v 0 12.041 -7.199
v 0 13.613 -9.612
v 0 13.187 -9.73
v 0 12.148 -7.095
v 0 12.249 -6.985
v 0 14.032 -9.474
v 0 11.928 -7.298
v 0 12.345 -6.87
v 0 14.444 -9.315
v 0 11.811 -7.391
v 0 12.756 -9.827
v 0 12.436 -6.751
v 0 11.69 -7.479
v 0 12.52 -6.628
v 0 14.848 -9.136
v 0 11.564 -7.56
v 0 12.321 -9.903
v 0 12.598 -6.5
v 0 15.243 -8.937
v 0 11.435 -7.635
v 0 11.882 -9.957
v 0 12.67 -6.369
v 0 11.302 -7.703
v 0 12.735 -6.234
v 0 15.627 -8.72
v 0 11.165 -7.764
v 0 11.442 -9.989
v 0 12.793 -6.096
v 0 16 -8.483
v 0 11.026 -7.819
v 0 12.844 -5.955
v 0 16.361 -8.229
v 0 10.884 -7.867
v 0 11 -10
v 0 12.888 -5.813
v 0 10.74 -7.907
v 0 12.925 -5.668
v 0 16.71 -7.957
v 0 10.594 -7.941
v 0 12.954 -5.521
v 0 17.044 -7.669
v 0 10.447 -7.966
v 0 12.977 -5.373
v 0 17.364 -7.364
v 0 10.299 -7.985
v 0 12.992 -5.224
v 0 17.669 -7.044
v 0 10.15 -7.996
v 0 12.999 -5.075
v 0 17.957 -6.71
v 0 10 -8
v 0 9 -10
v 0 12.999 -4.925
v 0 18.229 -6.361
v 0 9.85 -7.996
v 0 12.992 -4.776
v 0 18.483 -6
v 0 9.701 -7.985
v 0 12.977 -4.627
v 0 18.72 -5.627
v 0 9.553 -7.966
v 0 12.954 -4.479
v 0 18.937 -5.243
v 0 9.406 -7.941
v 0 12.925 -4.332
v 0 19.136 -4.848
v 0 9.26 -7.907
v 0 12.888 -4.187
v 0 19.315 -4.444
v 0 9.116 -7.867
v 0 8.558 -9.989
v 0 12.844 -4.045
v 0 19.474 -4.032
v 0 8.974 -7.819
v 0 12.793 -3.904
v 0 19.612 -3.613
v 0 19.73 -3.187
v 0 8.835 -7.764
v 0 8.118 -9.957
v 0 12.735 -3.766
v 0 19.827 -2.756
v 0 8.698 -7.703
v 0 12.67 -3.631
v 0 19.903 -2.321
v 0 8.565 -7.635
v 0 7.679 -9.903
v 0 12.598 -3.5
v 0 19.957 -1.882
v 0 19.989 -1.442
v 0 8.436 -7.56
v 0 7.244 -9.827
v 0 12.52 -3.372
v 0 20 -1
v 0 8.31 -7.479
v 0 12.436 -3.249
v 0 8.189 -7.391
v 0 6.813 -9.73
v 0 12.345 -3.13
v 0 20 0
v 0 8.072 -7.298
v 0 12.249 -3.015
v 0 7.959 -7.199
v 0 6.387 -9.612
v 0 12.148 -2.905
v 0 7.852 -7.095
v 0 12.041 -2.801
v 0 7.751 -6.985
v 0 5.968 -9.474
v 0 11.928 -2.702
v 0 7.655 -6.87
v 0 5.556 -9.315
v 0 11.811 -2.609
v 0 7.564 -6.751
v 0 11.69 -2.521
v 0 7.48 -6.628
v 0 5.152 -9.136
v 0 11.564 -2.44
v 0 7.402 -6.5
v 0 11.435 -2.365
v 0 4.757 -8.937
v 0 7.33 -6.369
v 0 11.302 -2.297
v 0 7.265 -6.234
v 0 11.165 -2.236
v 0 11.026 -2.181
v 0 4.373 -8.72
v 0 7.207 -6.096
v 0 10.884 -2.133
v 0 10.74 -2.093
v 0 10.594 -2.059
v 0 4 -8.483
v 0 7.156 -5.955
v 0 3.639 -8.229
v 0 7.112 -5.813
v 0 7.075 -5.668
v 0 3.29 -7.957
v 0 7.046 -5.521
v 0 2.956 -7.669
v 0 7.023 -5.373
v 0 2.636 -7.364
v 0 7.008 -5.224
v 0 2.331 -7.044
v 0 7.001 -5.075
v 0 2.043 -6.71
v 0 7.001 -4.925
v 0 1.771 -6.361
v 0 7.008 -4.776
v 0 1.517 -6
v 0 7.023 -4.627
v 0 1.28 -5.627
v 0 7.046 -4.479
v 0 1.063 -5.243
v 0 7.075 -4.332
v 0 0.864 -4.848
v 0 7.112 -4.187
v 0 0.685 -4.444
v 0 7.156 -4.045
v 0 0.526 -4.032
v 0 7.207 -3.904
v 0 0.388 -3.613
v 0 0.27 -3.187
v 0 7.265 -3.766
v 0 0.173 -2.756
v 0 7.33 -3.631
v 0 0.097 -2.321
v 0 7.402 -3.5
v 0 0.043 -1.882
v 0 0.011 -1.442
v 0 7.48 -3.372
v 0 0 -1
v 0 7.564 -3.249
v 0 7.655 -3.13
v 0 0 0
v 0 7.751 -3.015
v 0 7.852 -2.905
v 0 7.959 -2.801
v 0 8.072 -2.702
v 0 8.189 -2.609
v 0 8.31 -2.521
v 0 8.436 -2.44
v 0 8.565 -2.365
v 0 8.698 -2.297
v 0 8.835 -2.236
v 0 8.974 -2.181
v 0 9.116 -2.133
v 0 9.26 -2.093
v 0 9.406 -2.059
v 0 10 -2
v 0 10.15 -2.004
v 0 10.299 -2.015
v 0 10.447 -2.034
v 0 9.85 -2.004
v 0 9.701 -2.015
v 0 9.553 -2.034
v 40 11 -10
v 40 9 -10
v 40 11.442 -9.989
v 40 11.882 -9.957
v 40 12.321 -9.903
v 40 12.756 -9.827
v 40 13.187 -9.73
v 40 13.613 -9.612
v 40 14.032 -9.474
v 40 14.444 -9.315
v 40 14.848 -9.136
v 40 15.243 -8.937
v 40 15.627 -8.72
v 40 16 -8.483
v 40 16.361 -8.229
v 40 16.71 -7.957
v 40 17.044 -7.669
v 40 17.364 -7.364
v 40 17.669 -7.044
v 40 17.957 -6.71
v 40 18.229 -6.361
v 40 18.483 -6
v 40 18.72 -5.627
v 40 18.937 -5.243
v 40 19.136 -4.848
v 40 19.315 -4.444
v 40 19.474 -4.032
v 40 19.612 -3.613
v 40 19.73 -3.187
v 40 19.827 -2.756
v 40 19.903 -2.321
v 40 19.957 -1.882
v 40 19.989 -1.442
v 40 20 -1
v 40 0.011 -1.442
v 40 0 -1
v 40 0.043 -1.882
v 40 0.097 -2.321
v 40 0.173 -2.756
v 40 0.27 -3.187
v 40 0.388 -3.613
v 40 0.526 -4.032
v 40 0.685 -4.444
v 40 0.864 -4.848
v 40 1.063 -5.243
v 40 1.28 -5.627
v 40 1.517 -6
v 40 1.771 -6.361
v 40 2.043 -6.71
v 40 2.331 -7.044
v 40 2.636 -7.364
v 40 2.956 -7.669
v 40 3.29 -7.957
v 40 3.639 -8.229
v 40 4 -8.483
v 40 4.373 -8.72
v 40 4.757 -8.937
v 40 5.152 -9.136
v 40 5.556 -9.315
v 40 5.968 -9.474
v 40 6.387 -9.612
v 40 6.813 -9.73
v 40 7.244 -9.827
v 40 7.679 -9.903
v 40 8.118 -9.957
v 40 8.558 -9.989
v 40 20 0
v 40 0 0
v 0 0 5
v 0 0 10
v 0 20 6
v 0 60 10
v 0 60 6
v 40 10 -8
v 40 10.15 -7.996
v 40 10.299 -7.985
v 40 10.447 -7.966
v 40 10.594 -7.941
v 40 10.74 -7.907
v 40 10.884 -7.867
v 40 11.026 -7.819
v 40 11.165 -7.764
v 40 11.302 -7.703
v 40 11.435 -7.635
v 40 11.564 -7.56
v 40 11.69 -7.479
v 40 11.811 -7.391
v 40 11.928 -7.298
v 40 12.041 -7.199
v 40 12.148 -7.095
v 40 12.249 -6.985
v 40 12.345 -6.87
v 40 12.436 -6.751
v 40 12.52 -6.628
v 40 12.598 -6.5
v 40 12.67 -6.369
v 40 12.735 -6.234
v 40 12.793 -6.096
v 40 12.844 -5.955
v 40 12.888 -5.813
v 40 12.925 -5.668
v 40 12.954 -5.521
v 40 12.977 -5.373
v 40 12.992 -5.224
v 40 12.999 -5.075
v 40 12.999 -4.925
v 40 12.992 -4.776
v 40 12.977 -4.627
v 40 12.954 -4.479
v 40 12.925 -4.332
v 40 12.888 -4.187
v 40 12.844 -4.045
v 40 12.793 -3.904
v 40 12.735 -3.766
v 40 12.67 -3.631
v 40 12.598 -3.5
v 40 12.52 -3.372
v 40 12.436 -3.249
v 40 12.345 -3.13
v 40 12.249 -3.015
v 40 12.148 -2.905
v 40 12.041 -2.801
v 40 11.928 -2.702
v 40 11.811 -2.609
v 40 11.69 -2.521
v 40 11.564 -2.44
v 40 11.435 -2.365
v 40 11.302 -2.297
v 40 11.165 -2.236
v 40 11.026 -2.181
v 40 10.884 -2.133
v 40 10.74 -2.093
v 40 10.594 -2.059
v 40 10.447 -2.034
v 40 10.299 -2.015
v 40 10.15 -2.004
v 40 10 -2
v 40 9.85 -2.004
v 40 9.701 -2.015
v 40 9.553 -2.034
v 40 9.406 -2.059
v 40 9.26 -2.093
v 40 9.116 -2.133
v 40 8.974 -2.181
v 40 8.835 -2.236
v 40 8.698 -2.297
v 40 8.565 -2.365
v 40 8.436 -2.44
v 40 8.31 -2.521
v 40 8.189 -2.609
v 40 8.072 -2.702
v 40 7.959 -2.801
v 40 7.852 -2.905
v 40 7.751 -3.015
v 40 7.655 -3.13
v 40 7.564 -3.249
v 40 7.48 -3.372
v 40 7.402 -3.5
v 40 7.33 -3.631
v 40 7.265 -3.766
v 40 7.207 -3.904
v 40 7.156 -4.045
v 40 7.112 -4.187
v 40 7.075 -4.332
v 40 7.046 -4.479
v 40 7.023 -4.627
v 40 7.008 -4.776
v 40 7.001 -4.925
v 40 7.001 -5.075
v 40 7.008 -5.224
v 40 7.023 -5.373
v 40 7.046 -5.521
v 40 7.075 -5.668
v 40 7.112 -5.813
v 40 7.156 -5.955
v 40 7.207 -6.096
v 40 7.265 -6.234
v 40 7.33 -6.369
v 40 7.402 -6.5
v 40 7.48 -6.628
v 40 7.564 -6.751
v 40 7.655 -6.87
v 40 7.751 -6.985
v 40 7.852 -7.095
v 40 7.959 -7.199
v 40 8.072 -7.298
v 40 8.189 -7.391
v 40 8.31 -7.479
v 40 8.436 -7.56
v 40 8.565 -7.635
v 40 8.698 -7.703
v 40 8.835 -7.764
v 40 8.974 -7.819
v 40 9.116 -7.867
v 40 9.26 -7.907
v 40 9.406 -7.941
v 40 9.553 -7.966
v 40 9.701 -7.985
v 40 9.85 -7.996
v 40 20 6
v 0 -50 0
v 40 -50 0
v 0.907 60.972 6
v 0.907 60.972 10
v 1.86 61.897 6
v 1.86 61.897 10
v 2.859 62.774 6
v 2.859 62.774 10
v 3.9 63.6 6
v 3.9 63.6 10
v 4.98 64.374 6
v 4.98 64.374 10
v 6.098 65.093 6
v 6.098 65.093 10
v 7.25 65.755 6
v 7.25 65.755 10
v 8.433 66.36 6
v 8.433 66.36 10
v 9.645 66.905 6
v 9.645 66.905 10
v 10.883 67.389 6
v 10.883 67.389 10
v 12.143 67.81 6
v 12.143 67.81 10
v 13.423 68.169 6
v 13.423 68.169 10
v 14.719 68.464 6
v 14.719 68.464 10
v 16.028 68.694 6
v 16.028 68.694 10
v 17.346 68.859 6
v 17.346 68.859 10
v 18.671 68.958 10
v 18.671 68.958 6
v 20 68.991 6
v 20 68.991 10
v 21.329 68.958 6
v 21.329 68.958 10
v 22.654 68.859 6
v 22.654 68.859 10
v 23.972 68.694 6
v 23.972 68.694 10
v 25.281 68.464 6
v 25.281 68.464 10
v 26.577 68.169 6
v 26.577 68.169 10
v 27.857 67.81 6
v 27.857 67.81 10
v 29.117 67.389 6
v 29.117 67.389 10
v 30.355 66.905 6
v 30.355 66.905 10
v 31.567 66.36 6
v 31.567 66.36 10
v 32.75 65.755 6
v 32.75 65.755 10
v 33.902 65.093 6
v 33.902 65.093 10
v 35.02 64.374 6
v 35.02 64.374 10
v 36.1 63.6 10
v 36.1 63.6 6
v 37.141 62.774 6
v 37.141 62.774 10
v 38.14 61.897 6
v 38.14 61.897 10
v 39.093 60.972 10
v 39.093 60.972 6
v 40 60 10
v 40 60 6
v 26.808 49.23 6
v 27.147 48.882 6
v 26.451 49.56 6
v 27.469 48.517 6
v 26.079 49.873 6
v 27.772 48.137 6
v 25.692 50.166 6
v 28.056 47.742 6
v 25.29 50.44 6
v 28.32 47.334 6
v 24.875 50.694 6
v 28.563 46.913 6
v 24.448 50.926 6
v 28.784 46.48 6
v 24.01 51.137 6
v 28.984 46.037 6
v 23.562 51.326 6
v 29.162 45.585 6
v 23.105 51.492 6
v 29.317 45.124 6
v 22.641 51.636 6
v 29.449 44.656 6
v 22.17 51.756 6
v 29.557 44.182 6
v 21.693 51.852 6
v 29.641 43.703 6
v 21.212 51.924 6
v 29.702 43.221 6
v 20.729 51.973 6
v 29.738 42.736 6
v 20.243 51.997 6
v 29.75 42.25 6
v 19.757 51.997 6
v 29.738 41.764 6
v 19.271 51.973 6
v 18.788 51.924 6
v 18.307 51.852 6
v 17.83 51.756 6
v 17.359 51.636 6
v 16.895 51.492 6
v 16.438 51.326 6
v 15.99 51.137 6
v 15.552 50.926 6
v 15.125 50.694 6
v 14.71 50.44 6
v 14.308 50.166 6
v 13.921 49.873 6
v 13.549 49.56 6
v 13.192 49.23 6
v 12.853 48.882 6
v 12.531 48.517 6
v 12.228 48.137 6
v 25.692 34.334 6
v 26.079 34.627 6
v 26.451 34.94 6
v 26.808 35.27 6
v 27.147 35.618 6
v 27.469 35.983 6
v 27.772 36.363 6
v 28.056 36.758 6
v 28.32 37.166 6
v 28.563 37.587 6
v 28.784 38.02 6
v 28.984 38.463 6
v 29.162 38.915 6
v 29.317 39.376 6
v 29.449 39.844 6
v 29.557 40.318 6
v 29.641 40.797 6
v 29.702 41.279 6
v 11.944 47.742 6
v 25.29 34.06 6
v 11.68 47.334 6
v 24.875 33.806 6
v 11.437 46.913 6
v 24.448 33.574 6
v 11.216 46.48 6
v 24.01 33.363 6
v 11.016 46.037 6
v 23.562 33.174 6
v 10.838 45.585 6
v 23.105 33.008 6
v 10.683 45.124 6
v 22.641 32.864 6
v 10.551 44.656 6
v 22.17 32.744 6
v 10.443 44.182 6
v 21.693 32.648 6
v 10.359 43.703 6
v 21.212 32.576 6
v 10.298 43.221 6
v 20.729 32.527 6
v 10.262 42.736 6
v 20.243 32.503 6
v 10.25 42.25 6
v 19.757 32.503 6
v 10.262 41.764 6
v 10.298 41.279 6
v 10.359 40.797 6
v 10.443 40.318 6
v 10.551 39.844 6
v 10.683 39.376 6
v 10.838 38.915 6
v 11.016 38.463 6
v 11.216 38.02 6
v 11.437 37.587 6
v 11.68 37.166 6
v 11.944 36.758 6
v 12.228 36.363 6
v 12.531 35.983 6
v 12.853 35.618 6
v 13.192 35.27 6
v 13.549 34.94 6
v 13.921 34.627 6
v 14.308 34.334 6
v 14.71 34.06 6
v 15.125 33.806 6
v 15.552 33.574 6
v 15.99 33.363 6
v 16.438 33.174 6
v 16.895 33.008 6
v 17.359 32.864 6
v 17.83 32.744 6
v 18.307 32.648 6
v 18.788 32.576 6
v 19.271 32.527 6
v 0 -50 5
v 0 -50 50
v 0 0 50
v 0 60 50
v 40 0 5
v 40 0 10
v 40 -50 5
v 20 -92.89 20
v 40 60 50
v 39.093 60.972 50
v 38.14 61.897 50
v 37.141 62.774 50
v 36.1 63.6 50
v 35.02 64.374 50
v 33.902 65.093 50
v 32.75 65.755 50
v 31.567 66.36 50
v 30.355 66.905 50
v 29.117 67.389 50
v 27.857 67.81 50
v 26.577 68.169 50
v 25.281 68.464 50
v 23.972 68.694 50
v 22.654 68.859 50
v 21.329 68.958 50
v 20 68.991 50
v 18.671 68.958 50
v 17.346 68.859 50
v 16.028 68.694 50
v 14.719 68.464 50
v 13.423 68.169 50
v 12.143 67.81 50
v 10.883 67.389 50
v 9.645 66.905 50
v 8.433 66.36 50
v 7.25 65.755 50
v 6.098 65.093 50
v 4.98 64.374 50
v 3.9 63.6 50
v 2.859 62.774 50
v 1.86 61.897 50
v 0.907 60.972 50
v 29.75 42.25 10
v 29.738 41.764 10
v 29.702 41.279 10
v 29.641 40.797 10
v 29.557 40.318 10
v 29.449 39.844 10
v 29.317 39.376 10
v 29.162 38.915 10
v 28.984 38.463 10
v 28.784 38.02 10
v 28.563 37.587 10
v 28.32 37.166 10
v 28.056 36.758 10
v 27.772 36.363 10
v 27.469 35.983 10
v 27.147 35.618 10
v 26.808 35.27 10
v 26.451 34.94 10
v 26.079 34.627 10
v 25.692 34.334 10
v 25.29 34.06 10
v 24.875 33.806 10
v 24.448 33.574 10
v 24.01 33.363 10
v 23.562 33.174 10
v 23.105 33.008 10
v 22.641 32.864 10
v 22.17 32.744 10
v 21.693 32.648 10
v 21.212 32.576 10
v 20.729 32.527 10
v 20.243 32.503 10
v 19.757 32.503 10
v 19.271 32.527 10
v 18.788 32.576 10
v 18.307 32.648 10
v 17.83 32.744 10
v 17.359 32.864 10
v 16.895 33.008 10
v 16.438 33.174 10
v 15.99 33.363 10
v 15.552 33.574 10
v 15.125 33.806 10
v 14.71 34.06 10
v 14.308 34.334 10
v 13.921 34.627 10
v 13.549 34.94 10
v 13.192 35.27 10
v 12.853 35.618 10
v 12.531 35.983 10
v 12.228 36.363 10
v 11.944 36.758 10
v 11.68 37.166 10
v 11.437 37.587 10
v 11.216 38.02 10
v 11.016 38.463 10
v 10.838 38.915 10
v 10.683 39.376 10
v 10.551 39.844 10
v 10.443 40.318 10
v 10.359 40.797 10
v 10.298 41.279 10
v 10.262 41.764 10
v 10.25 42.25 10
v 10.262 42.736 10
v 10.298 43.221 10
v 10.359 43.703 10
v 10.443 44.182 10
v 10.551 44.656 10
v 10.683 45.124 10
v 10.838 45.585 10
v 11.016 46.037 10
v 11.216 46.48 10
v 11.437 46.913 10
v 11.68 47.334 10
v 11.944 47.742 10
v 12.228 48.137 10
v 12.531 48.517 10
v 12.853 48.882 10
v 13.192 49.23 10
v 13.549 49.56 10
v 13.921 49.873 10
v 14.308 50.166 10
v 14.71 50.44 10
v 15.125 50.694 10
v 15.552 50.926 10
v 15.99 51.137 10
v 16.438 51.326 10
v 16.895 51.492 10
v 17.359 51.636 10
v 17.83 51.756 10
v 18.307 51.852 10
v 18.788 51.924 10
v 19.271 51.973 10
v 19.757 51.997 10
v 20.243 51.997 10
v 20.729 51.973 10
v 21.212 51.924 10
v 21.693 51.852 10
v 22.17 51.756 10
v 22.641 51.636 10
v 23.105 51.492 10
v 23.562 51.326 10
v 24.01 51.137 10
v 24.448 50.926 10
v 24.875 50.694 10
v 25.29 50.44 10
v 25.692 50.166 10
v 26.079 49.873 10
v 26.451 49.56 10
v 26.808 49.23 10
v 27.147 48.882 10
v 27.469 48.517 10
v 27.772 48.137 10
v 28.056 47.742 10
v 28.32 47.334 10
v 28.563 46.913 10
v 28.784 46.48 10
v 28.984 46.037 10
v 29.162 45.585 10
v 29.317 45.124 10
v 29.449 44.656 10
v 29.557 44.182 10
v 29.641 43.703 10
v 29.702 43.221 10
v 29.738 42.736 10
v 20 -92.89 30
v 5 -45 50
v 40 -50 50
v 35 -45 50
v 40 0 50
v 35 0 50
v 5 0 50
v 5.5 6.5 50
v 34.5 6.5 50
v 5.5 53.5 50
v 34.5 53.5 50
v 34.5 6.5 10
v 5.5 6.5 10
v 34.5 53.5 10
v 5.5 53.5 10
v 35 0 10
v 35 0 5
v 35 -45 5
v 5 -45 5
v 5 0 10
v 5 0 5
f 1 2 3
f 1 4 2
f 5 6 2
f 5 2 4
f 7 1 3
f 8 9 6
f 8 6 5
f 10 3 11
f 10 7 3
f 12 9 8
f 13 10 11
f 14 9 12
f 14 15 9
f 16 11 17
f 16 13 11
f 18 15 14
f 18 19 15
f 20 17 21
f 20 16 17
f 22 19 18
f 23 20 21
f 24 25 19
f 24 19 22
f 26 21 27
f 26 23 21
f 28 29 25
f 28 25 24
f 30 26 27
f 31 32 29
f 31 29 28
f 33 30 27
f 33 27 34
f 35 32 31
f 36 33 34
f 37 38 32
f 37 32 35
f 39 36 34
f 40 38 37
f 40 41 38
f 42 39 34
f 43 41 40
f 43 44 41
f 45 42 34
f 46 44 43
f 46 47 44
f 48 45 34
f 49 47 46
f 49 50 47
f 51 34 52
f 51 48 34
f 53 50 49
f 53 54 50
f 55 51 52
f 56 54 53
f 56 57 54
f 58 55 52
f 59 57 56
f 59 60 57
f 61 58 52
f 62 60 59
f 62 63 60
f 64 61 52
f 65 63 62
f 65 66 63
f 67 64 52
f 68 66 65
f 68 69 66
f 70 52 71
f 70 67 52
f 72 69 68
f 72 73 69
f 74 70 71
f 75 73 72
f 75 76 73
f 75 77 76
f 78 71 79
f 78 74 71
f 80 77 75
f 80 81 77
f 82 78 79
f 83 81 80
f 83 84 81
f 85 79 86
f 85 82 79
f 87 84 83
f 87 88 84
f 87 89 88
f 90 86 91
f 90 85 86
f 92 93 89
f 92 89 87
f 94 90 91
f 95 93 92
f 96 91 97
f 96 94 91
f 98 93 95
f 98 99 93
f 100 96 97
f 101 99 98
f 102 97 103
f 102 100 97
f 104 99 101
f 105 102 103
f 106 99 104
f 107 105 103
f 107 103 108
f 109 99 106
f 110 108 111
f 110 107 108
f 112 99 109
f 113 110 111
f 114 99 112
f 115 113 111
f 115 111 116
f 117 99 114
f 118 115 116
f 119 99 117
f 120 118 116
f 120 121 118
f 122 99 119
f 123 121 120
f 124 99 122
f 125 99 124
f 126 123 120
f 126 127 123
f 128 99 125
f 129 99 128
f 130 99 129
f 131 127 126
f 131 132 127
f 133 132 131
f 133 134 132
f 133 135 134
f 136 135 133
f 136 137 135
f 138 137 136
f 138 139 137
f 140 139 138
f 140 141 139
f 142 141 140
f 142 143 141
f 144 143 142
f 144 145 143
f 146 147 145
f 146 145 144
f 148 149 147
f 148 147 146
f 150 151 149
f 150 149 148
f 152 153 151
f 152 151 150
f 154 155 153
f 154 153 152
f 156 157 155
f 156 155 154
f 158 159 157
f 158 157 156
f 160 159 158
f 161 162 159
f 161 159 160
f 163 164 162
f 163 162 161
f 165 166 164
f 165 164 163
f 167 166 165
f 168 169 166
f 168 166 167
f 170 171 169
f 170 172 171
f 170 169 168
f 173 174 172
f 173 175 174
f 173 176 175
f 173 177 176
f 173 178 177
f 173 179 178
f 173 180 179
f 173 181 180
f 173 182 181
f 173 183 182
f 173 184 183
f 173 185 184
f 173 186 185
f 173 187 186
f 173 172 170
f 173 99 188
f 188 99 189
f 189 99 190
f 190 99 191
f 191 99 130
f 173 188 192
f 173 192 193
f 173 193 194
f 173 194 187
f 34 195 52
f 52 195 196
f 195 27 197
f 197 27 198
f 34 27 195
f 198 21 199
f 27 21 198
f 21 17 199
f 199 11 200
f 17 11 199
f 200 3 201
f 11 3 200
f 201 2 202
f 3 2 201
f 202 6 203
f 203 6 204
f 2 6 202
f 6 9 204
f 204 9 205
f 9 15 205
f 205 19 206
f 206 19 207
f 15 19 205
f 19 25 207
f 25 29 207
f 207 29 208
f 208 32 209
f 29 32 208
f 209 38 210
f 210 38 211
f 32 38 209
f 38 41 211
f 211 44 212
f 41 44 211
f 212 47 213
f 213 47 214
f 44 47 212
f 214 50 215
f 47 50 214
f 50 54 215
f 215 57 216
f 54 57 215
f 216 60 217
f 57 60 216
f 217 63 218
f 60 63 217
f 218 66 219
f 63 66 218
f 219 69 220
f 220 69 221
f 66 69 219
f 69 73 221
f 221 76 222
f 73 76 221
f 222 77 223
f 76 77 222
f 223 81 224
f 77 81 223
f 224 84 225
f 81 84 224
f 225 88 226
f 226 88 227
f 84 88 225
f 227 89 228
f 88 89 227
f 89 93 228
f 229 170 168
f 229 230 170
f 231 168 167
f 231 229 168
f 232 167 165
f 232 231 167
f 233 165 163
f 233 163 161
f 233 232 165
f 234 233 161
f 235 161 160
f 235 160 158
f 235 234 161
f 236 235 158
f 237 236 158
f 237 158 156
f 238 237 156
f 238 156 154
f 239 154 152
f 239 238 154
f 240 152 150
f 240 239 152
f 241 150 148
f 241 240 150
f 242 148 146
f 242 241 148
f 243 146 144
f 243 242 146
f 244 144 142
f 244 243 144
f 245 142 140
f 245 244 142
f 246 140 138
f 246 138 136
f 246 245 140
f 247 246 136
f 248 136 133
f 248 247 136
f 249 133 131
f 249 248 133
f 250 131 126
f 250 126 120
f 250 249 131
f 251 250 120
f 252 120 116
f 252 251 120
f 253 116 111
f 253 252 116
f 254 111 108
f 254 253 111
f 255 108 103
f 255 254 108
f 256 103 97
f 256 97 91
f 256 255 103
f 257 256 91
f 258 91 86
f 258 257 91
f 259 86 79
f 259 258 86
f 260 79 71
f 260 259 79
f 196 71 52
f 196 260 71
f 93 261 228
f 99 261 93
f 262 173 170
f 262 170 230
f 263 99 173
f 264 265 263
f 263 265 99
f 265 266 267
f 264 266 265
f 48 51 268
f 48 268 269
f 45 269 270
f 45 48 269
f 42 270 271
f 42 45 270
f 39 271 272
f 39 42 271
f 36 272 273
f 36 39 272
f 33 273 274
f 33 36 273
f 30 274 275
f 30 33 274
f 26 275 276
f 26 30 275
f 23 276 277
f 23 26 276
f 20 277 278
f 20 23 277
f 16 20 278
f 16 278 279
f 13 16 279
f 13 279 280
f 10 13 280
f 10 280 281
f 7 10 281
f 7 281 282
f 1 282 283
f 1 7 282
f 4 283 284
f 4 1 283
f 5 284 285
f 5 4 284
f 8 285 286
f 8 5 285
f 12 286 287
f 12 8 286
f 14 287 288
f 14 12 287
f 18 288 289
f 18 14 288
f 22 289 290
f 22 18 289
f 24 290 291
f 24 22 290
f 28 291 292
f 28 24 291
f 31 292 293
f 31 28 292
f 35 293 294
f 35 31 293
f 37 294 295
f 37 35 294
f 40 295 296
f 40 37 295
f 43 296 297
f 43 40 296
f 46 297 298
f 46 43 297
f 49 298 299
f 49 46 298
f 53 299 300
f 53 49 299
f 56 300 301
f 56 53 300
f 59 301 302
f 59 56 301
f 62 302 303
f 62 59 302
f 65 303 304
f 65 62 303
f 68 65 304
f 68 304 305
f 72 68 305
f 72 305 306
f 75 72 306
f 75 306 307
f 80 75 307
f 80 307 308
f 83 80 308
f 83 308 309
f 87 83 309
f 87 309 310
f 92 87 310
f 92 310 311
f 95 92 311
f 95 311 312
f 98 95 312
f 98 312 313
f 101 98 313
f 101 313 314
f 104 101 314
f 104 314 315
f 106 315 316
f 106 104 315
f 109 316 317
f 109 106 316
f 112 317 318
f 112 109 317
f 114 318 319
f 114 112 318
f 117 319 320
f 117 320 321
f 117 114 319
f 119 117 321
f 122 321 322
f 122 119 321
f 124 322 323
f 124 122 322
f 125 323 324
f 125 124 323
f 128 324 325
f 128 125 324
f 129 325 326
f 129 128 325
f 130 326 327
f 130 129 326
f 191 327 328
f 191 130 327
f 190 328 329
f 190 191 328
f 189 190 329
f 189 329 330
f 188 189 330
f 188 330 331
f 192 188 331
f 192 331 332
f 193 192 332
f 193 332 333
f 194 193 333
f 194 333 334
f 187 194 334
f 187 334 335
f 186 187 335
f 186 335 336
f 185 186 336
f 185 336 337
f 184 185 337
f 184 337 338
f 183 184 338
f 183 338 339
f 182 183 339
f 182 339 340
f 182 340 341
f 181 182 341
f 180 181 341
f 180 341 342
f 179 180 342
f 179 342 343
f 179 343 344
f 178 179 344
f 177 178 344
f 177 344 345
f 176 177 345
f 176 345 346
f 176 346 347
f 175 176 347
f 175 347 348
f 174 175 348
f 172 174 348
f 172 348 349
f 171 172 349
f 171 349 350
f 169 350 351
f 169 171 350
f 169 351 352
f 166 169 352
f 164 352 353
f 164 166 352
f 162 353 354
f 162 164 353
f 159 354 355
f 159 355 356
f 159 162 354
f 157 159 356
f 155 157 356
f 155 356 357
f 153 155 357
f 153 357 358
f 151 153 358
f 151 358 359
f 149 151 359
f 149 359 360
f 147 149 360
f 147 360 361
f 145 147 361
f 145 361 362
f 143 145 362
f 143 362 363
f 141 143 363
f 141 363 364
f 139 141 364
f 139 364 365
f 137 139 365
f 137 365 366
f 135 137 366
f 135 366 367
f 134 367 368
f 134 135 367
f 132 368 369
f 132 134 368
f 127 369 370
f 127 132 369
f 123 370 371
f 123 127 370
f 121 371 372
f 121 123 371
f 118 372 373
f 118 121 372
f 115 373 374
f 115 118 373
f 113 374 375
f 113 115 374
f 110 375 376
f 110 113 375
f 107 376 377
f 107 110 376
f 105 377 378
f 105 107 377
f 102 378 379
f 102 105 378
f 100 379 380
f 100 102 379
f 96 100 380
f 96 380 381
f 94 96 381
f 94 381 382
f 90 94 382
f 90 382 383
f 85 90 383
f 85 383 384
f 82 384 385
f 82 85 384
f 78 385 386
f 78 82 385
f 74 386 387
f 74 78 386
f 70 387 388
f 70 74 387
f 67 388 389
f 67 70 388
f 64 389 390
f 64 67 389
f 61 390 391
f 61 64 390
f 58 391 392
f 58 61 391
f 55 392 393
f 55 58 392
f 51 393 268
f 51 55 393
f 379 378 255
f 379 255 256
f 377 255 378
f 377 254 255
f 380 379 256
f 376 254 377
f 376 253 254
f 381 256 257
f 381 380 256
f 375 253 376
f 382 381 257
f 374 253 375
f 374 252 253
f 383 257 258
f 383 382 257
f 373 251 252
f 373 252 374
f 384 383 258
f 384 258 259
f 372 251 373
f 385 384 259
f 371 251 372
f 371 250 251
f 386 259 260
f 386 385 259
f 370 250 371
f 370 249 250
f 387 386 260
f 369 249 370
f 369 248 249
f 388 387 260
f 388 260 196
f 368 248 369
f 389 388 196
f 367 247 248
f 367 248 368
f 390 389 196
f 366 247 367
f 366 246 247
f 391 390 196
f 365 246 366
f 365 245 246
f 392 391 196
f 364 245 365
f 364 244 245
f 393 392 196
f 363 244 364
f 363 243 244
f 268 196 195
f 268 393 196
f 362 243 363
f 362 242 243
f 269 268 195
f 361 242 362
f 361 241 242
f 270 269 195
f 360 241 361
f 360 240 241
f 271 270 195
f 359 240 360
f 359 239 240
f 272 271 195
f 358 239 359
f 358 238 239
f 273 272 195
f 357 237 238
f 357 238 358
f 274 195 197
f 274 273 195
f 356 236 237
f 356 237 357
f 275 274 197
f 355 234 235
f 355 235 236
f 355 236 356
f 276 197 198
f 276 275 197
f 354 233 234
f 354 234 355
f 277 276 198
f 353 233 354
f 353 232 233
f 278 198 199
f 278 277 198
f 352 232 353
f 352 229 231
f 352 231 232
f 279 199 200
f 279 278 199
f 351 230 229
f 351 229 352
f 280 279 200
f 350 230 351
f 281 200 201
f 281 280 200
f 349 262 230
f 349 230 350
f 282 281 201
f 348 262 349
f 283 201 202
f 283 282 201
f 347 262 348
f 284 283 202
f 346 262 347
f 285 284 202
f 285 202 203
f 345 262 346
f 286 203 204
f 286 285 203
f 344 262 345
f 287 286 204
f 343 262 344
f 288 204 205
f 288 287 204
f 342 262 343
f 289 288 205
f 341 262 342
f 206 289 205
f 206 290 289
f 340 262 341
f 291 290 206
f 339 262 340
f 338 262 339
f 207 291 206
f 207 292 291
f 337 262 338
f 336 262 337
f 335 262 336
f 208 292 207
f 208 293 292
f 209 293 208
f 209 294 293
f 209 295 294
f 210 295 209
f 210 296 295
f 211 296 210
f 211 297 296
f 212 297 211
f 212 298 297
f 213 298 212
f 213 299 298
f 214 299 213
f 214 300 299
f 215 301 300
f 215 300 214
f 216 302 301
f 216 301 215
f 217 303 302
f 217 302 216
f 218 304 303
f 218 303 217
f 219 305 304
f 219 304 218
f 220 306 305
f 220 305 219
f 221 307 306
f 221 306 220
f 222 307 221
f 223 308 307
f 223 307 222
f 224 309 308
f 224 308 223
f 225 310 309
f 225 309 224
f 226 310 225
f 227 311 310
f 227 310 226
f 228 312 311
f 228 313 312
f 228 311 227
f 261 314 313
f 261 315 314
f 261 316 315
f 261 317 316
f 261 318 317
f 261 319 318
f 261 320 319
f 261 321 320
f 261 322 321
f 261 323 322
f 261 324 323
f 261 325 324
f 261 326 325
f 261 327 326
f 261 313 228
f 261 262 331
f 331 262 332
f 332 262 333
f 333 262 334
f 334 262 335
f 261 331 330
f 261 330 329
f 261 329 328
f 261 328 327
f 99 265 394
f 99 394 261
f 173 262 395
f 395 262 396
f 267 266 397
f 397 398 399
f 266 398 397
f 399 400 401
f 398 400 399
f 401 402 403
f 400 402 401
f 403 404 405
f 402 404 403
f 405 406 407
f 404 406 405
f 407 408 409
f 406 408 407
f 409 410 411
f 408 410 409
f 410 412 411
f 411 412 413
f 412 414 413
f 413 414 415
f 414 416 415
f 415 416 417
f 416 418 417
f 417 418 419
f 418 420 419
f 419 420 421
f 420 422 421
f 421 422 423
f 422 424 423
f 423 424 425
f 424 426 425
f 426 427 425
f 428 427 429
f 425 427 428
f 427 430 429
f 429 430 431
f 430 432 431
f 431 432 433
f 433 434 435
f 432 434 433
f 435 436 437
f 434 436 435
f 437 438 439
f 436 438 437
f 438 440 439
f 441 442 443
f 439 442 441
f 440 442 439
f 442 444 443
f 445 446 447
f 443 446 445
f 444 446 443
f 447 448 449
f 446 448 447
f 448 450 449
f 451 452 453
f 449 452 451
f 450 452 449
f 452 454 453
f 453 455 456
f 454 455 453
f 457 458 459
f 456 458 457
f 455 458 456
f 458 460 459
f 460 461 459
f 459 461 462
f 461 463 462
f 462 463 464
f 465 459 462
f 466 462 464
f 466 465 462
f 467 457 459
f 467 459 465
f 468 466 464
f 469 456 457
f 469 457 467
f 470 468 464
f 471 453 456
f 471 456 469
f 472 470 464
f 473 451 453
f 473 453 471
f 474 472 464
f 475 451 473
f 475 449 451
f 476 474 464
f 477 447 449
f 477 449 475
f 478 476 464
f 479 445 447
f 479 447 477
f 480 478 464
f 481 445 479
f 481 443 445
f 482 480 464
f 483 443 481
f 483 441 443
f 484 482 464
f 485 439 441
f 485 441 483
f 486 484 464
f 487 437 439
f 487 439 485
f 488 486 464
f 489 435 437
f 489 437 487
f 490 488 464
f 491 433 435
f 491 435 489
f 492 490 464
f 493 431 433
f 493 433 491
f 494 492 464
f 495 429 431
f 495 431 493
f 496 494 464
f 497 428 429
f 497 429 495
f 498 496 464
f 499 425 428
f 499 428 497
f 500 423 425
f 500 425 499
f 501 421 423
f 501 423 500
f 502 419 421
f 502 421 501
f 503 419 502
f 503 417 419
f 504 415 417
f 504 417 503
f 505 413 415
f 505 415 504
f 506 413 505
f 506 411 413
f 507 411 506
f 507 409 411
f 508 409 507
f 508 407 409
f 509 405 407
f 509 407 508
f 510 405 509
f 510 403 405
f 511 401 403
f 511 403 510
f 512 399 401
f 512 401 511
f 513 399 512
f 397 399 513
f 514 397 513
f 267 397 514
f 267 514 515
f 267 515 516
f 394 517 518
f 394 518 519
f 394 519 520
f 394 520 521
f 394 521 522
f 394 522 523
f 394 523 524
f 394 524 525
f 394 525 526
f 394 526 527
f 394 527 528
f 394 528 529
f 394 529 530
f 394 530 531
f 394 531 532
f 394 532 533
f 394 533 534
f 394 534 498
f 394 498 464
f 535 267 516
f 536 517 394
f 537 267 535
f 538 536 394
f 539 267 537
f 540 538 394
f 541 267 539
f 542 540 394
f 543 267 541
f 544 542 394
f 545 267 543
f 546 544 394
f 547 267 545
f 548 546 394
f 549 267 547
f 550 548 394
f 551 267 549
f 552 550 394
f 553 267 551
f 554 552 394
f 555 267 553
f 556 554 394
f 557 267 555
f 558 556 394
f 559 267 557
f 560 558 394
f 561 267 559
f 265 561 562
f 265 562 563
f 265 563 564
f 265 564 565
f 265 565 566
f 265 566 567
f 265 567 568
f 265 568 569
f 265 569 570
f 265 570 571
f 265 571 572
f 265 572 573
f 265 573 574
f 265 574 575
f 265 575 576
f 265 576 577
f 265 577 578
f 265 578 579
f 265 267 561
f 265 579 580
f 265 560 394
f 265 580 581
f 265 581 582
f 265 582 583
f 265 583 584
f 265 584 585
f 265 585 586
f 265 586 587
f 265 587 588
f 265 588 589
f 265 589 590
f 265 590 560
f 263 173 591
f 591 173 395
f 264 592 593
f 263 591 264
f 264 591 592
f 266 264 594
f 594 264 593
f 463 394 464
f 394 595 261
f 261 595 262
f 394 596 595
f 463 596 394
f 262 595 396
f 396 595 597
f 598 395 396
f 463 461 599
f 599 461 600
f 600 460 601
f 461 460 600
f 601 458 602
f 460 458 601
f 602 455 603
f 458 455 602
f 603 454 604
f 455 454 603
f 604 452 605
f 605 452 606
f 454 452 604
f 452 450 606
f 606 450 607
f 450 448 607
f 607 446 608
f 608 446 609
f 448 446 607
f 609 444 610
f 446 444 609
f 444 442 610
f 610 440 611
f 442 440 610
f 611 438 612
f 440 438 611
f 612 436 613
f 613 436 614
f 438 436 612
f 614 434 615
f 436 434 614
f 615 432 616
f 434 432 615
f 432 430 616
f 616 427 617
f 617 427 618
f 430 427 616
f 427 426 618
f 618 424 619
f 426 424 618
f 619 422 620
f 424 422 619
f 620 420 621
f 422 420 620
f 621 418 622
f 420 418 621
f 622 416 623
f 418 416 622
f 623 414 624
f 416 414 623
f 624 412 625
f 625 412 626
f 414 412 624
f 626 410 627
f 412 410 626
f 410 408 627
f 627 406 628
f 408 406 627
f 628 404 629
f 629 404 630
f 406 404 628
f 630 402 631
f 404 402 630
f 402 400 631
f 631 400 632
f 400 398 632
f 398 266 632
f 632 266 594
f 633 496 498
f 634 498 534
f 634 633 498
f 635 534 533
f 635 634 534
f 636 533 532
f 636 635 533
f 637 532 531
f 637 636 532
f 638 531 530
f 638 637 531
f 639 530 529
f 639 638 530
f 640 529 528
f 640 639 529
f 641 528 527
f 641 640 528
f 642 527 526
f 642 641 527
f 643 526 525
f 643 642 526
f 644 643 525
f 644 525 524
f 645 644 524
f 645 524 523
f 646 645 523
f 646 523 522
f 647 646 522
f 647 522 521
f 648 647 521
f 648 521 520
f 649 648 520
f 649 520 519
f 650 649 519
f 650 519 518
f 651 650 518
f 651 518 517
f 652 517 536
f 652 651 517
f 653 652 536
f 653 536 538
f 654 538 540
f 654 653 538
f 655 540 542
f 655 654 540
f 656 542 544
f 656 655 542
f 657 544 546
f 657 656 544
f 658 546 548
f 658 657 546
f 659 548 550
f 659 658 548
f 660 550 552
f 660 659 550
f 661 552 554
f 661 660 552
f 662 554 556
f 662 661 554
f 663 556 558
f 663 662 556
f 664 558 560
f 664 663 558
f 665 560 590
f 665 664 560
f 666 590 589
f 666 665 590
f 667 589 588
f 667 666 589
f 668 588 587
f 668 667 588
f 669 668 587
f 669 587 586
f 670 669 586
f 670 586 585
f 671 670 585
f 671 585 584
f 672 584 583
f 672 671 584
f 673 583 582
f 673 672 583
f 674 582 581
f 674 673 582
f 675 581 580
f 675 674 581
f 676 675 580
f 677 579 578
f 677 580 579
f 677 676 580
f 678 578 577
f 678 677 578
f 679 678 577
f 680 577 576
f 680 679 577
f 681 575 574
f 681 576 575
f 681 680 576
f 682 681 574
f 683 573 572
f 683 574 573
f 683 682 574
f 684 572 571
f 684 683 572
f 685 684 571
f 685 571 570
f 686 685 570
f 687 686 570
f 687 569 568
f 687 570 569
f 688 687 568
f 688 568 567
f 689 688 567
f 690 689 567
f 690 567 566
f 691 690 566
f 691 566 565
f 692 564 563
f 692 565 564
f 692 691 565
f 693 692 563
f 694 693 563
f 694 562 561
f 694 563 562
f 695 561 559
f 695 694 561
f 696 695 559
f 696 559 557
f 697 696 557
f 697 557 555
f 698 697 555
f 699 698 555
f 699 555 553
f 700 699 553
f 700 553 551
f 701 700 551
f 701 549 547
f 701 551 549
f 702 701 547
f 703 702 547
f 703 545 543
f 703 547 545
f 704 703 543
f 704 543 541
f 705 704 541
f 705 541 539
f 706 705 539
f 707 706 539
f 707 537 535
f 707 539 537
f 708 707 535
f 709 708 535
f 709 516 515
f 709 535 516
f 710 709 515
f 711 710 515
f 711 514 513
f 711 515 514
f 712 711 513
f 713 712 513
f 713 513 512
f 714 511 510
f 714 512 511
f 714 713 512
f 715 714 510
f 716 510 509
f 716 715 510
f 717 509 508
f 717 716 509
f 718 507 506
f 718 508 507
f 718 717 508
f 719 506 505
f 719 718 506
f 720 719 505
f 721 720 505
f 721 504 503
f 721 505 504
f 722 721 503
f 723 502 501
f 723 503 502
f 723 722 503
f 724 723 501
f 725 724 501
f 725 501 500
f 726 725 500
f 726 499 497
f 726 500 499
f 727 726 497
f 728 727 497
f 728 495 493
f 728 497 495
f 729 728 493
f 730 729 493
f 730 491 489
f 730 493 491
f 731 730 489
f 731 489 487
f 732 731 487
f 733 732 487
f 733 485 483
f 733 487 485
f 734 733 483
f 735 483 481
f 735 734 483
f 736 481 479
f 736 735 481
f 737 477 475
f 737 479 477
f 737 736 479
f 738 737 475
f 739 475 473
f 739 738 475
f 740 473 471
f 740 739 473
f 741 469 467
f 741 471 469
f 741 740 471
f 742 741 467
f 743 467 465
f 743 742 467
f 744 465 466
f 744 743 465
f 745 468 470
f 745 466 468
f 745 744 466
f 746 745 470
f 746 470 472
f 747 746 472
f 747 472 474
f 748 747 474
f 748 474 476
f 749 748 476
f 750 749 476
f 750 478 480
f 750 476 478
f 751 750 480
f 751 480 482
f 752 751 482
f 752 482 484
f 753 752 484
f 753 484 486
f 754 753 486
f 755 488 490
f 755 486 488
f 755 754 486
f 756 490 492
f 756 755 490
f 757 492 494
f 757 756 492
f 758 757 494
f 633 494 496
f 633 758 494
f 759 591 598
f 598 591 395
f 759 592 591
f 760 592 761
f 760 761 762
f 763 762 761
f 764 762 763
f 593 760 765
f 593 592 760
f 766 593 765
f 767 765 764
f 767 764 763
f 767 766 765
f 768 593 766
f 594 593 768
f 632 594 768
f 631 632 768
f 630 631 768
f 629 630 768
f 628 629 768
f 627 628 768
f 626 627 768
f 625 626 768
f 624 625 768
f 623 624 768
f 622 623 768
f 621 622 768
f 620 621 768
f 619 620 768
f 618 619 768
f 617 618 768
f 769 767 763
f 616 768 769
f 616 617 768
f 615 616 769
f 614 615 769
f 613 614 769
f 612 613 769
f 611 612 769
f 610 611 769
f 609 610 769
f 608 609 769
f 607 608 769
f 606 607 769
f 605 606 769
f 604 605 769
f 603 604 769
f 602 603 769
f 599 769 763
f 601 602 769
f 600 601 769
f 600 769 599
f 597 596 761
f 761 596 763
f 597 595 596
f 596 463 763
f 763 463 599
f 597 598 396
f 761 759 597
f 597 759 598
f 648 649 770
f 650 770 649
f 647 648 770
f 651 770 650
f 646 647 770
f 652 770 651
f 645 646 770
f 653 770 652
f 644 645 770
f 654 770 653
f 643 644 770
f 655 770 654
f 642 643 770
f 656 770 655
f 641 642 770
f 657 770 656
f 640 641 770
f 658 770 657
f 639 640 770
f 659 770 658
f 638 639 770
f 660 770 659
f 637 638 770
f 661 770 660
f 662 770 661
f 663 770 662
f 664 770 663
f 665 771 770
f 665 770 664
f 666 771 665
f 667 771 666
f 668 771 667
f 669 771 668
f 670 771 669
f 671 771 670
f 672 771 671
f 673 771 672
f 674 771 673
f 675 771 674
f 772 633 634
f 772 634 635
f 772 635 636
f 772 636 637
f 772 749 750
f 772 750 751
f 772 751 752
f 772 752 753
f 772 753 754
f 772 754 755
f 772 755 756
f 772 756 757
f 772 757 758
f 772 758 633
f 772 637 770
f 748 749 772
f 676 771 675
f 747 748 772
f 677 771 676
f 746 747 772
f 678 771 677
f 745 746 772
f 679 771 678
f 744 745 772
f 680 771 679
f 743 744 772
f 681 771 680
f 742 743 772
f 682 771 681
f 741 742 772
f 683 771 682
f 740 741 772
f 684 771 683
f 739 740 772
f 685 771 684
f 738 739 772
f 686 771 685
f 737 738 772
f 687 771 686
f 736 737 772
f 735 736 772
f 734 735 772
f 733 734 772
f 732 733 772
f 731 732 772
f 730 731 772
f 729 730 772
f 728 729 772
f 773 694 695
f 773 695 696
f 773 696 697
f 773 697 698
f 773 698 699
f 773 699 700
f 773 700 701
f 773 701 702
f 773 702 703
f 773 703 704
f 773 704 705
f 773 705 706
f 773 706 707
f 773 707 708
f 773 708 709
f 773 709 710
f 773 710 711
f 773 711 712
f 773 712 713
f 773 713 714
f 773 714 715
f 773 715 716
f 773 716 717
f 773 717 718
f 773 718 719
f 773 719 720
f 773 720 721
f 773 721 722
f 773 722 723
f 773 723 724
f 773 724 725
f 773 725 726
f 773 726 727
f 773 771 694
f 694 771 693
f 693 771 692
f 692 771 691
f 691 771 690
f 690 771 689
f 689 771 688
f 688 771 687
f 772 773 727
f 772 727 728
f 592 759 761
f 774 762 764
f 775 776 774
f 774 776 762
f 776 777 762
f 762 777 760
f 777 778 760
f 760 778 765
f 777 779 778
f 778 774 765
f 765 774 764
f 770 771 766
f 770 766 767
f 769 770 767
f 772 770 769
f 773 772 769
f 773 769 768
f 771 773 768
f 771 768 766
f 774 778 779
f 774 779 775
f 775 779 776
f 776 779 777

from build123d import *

# Parameters (mm, degrees)
SKETCH_W        = 29
SKETCH_H        = 47
PAD_DEPTH       = 40
SKETCH001_R     = 9.75
PAD001_DEPTH    = 10
SKETCH002_W     = 56
SKETCH002_H     = 6
POCKET_DEPTH    = 100
POCKET001_DEPTH = 5
SKETCH005_R     = 0.8
POCKET002_DEPTH = 5
SKETCH006_W     = 40
SKETCH006_H     = 20
PAD002_DEPTH    = 10
FILLET_R        = 9
FILLET001_R     = 9
SKETCH007_R     = 3
HOLE_DEPTH      = 50
SKETCH008_W     = 45
SKETCH008_H     = 54
POCKET003_DEPTH = 5
SKETCH009_W     = 40
SKETCH009_H     = 5
PAD003_DEPTH    = 50
PAD004_DEPTH    = 45
SKETCH011_W     = 40
SKETCH011_H     = 50
PAD005_DEPTH    = 50
POCKET004_DEPTH = 60.001
POCKET005_DEPTH = 40.001


with BuildPart() as part:
    # Sketch → Pad (new body)
    with BuildSketch(Plane.XY.offset(10)):
        with BuildLine():
            Line((0, 0), (40, 0))
            Line((40, 0), (40, 60))
            ThreePointArc((40, 60), (20, 68.990653), (0, 60))
            Line((0, 60), (0, 0))
        make_face()
        with Locations((20, 30)):
            Rectangle(SKETCH_W, SKETCH_H, mode=Mode.SUBTRACT)
    extrude(amount=PAD_DEPTH)

    # Sketch001 (on Face9 of Pad) → Pad001 (join)
    with BuildSketch(Plane(origin=(0, 0, 10), x_dir=(1, 0, 0), z_dir=(0, 0, -1))):
        with BuildLine():
            Line((40, -60), (40, 30))
            ThreePointArc((40, 30), (20, 50), (0, 30))
            Line((0, 30), (0, -60))
            ThreePointArc((0, -60), (20, -68.990653), (40, -60))
        make_face()
        with Locations((20, -42.25)):
            Circle(SKETCH001_R, mode=Mode.SUBTRACT)
    extrude(amount=PAD001_DEPTH)

    # Sketch002 (on Face7 of Pad001) → Pocket (cut)
    with BuildSketch(Plane(origin=(0, 0, 0), x_dir=(0, -1, 0), z_dir=(-1, 0, 0))):
        with Locations((-48, 3)):
            Rectangle(SKETCH002_W, SKETCH002_H)
    extrude(amount=-POCKET_DEPTH, mode=Mode.SUBTRACT)

    # Sketch003 (on Face4 of Pocket) → Pocket001 (cut)
    with BuildSketch(Plane.XY.offset(10)):
        with BuildLine():
            Line((0, 0), (40, 0))
            Line((40, 0), (40, -30))
            ThreePointArc((0, -30), (20, -50), (40, -30))
            Line((0, -30), (0, 0))
        make_face()
    extrude(amount=-POCKET001_DEPTH, mode=Mode.SUBTRACT)

    # Sketch005 → Pocket002 (cut)
    with BuildSketch(Plane(origin=(0, 0, 0), x_dir=(1, 0, 0), z_dir=(0, 0, -1))):
        with Locations((11.98, 30)):
            Circle(SKETCH005_R)
        with Locations((14.34, 35.7)):
            Circle(SKETCH005_R)
        with Locations((20, 37.98)):
            Circle(SKETCH005_R)
        with Locations((25.66, 35.7)):
            Circle(SKETCH005_R)
        with Locations((28.02, 30)):
            Circle(SKETCH005_R)
        with Locations((25.66, 24.35)):
            Circle(SKETCH005_R)
        with Locations((20, 22.02)):
            Circle(SKETCH005_R)
        with Locations((14.34, 24.34)):
            Circle(SKETCH005_R)
    extrude(amount=-POCKET002_DEPTH, mode=Mode.SUBTRACT)

    # Sketch006 (on Face17 of Pocket002) → Pad002 (join)
    with BuildSketch(Plane(origin=(0, 0, 0), x_dir=(1, 0, 0), z_dir=(0, 0, -1))):
        with Locations((20, -10)):
            Rectangle(SKETCH006_W, SKETCH006_H)
    extrude(amount=PAD002_DEPTH)

    # Fillet
    fillet_edges = [part.edges().sort_by_distance(p)[0] for p in [
        (20, 0, -10),
    ]]
    fillet(fillet_edges, radius=FILLET_R)

    # Fillet001
    fillet001_edges = [part.edges().sort_by_distance(p)[0] for p in [
        (20, 20, -10),
    ]]
    fillet(fillet001_edges, radius=FILLET001_R)

    # Sketch007 (on Face8 of Fillet001) → Hole (cut)
    with BuildSketch(Plane.YZ.offset(40)):
        with Locations((10, -5)):
            Circle(SKETCH007_R)
    extrude(amount=-HOLE_DEPTH, mode=Mode.SUBTRACT)

    # Sketch008 (on Face16 of Hole) → Pocket003 (cut)
    with BuildSketch(Plane.XY.offset(5)):
        with Locations((22.5, -27)):
            Rectangle(SKETCH008_W, SKETCH008_H)
    extrude(amount=-POCKET003_DEPTH, mode=Mode.SUBTRACT)

    # Sketch009 (on Face11 of Pocket003) → Pad003 (join)
    with BuildSketch(Plane.XZ):
        with Locations((20, 2.5)):
            Rectangle(SKETCH009_W, SKETCH009_H)
    extrude(amount=PAD003_DEPTH)

    # Sketch010 (on Face22 of Pad003) → Pad004 (join)
    with BuildSketch(Plane.XY.offset(5)):
        Polygon((0, 0), (0, -50), (40, -50), (40, 0), (35, 0), (35, -45), (5, -45), (5, 0), align=None)
    extrude(amount=PAD004_DEPTH)

    # Sketch011 (on Face22 of Pad004) → Pad005 (join)
    with BuildSketch(Plane.XZ.offset(50)):
        with Locations((20, 25)):
            Rectangle(SKETCH011_W, SKETCH011_H)
    extrude(amount=PAD005_DEPTH)

    # Sketch012 (on Face30 of Pad005) → Pocket004 (cut, through all)
    with BuildSketch(Plane.XY.offset(50)):
        Polygon((40, -50), (20, -92.890138), (0, -50), (0, -100), (40, -100), align=None)
    extrude(amount=-POCKET004_DEPTH, mode=Mode.SUBTRACT)

    # Sketch013 (on Face15 of Pocket004) → Pocket005 (cut, through all)
    with BuildSketch(Plane(origin=(0, 0, 0), x_dir=(0, -1, 0), z_dir=(-1, 0, 0))):
        Polygon((50, 0), (95, 0), (95, 50), (50, 50), (99.846928, 26.755996), (99.846928, 23.244004), align=None)
    extrude(amount=-POCKET005_DEPTH, mode=Mode.SUBTRACT)


solid = part.part
